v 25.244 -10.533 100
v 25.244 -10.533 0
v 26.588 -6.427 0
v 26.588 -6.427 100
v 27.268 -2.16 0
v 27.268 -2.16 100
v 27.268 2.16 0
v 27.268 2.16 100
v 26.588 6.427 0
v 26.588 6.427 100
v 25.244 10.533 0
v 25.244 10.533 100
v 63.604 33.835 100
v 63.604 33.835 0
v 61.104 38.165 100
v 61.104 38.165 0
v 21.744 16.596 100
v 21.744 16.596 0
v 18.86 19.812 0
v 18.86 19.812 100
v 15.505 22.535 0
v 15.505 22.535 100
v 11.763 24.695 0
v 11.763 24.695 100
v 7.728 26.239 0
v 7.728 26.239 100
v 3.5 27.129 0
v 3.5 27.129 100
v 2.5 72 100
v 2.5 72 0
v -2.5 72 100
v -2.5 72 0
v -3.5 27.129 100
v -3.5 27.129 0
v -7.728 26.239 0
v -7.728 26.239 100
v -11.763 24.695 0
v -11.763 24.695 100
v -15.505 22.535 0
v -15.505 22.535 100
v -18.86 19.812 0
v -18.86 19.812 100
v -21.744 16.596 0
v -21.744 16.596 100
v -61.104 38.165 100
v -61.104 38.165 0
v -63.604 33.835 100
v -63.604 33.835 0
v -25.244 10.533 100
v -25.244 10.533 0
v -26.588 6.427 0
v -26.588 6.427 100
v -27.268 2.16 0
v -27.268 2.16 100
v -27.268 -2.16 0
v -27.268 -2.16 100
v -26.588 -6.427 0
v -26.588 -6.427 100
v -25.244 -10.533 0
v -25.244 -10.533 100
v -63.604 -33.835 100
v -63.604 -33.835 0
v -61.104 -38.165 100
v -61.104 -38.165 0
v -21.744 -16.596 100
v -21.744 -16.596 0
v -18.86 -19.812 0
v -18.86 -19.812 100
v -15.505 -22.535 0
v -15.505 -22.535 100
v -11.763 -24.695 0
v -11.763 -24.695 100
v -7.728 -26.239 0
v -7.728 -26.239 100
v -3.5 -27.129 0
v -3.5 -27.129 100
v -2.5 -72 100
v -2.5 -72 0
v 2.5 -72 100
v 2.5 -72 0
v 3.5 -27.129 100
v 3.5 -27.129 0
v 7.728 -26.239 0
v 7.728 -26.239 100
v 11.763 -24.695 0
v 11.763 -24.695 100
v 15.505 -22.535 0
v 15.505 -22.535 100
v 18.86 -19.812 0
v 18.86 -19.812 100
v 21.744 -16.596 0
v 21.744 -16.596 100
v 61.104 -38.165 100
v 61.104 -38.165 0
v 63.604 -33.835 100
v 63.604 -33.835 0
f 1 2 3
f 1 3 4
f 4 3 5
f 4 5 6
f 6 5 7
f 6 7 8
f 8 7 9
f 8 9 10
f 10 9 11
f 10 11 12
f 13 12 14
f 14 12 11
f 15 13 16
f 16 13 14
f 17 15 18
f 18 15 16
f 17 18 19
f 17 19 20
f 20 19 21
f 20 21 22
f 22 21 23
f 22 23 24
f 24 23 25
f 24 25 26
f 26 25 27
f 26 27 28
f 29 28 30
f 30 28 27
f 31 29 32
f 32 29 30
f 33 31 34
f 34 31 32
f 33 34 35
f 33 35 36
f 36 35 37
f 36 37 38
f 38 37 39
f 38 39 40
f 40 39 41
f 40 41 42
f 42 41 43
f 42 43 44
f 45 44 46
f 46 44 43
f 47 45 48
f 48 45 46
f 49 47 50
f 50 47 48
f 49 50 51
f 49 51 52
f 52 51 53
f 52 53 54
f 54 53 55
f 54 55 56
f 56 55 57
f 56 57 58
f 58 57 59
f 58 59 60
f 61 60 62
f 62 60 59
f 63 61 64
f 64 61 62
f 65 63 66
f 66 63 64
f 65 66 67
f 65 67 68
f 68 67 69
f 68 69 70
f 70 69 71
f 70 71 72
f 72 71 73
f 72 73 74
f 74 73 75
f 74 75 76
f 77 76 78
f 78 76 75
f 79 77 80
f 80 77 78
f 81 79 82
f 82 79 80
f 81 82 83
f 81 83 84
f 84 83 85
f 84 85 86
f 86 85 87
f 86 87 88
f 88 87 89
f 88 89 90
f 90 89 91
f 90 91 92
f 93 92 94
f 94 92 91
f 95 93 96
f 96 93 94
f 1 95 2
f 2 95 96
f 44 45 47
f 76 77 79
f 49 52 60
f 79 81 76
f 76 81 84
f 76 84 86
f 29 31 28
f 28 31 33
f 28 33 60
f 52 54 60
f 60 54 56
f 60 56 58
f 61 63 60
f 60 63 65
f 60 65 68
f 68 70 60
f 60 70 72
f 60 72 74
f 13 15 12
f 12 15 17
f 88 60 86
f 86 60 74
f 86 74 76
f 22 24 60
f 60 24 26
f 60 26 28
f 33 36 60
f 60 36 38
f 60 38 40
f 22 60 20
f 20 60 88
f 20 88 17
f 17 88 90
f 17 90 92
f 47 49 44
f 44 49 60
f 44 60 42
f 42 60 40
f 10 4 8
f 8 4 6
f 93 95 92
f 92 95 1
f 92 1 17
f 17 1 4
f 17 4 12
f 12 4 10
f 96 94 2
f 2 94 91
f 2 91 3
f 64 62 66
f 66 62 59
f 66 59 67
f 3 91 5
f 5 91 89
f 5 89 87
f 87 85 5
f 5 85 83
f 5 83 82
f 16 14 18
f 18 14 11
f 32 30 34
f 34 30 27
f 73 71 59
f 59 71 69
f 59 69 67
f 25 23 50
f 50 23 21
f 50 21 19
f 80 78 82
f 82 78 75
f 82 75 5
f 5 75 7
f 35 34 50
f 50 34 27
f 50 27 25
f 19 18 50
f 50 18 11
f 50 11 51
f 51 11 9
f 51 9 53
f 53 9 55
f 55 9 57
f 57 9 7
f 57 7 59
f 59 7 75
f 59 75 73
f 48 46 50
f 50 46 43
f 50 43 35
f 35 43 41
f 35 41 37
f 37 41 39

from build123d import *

# Parameters (mm, degrees)
BOSS_EXTRUDE1_DEPTH = 100


with BuildPart() as part:
    # Sketch1 → Boss-Extrude1 (new body)
    with BuildSketch(Plane.XY):
        with BuildLine():
            Line((3.5, 27.12898754), (2.5, 72))
            Line((2.5, 72), (-2.5, 72))
            Line((-2.5, 72), (-3.5, 27.12898754))
            ThreePointArc((-3.5, 27.12898754), (-13.676914536, 23.689110868), (-21.744392388, 16.595582683))
            Line((-21.744392388, 16.595582683), (-61.103829072, 38.165063509))
            Line((-61.103829072, 38.165063509), (-63.603829072, 33.834936491))
            Line((-63.603829072, 33.834936491), (-25.244392388, 10.533404857))
            ThreePointArc((-25.244392388, 10.533404857), (-27.353829072, 0), (-25.244392388, -10.533404857))
            Line((-25.244392388, -10.533404857), (-63.603829072, -33.834936491))
            Line((-63.603829072, -33.834936491), (-61.103829072, -38.165063509))
            Line((-61.103829072, -38.165063509), (-21.744392388, -16.595582683))
            ThreePointArc((-21.744392388, -16.595582683), (-13.676914536, -23.689110868), (-3.5, -27.12898754))
            Line((-3.5, -27.12898754), (-2.5, -72))
            Line((-2.5, -72), (2.5, -72))
            Line((2.5, -72), (3.5, -27.12898754))
            ThreePointArc((3.5, -27.12898754), (13.676914536, -23.689110868), (21.744392388, -16.595582683))
            Line((21.744392388, -16.595582683), (61.103829072, -38.165063509))
            Line((61.103829072, -38.165063509), (63.603829072, -33.834936491))
            Line((63.603829072, -33.834936491), (25.244392388, -10.533404857))
            ThreePointArc((25.244392388, -10.533404857), (27.353829072, 0), (25.244392388, 10.533404857))
            Line((25.244392388, 10.533404857), (63.603829072, 33.834936491))
            Line((63.603829072, 33.834936491), (61.103829072, 38.165063509))
            Line((61.103829072, 38.165063509), (21.744392388, 16.595582683))
            ThreePointArc((21.744392388, 16.595582683), (13.676914536, 23.689110868), (3.5, 27.12898754))
        make_face()
    extrude(amount=BOSS_EXTRUDE1_DEPTH)


solid = part.part
